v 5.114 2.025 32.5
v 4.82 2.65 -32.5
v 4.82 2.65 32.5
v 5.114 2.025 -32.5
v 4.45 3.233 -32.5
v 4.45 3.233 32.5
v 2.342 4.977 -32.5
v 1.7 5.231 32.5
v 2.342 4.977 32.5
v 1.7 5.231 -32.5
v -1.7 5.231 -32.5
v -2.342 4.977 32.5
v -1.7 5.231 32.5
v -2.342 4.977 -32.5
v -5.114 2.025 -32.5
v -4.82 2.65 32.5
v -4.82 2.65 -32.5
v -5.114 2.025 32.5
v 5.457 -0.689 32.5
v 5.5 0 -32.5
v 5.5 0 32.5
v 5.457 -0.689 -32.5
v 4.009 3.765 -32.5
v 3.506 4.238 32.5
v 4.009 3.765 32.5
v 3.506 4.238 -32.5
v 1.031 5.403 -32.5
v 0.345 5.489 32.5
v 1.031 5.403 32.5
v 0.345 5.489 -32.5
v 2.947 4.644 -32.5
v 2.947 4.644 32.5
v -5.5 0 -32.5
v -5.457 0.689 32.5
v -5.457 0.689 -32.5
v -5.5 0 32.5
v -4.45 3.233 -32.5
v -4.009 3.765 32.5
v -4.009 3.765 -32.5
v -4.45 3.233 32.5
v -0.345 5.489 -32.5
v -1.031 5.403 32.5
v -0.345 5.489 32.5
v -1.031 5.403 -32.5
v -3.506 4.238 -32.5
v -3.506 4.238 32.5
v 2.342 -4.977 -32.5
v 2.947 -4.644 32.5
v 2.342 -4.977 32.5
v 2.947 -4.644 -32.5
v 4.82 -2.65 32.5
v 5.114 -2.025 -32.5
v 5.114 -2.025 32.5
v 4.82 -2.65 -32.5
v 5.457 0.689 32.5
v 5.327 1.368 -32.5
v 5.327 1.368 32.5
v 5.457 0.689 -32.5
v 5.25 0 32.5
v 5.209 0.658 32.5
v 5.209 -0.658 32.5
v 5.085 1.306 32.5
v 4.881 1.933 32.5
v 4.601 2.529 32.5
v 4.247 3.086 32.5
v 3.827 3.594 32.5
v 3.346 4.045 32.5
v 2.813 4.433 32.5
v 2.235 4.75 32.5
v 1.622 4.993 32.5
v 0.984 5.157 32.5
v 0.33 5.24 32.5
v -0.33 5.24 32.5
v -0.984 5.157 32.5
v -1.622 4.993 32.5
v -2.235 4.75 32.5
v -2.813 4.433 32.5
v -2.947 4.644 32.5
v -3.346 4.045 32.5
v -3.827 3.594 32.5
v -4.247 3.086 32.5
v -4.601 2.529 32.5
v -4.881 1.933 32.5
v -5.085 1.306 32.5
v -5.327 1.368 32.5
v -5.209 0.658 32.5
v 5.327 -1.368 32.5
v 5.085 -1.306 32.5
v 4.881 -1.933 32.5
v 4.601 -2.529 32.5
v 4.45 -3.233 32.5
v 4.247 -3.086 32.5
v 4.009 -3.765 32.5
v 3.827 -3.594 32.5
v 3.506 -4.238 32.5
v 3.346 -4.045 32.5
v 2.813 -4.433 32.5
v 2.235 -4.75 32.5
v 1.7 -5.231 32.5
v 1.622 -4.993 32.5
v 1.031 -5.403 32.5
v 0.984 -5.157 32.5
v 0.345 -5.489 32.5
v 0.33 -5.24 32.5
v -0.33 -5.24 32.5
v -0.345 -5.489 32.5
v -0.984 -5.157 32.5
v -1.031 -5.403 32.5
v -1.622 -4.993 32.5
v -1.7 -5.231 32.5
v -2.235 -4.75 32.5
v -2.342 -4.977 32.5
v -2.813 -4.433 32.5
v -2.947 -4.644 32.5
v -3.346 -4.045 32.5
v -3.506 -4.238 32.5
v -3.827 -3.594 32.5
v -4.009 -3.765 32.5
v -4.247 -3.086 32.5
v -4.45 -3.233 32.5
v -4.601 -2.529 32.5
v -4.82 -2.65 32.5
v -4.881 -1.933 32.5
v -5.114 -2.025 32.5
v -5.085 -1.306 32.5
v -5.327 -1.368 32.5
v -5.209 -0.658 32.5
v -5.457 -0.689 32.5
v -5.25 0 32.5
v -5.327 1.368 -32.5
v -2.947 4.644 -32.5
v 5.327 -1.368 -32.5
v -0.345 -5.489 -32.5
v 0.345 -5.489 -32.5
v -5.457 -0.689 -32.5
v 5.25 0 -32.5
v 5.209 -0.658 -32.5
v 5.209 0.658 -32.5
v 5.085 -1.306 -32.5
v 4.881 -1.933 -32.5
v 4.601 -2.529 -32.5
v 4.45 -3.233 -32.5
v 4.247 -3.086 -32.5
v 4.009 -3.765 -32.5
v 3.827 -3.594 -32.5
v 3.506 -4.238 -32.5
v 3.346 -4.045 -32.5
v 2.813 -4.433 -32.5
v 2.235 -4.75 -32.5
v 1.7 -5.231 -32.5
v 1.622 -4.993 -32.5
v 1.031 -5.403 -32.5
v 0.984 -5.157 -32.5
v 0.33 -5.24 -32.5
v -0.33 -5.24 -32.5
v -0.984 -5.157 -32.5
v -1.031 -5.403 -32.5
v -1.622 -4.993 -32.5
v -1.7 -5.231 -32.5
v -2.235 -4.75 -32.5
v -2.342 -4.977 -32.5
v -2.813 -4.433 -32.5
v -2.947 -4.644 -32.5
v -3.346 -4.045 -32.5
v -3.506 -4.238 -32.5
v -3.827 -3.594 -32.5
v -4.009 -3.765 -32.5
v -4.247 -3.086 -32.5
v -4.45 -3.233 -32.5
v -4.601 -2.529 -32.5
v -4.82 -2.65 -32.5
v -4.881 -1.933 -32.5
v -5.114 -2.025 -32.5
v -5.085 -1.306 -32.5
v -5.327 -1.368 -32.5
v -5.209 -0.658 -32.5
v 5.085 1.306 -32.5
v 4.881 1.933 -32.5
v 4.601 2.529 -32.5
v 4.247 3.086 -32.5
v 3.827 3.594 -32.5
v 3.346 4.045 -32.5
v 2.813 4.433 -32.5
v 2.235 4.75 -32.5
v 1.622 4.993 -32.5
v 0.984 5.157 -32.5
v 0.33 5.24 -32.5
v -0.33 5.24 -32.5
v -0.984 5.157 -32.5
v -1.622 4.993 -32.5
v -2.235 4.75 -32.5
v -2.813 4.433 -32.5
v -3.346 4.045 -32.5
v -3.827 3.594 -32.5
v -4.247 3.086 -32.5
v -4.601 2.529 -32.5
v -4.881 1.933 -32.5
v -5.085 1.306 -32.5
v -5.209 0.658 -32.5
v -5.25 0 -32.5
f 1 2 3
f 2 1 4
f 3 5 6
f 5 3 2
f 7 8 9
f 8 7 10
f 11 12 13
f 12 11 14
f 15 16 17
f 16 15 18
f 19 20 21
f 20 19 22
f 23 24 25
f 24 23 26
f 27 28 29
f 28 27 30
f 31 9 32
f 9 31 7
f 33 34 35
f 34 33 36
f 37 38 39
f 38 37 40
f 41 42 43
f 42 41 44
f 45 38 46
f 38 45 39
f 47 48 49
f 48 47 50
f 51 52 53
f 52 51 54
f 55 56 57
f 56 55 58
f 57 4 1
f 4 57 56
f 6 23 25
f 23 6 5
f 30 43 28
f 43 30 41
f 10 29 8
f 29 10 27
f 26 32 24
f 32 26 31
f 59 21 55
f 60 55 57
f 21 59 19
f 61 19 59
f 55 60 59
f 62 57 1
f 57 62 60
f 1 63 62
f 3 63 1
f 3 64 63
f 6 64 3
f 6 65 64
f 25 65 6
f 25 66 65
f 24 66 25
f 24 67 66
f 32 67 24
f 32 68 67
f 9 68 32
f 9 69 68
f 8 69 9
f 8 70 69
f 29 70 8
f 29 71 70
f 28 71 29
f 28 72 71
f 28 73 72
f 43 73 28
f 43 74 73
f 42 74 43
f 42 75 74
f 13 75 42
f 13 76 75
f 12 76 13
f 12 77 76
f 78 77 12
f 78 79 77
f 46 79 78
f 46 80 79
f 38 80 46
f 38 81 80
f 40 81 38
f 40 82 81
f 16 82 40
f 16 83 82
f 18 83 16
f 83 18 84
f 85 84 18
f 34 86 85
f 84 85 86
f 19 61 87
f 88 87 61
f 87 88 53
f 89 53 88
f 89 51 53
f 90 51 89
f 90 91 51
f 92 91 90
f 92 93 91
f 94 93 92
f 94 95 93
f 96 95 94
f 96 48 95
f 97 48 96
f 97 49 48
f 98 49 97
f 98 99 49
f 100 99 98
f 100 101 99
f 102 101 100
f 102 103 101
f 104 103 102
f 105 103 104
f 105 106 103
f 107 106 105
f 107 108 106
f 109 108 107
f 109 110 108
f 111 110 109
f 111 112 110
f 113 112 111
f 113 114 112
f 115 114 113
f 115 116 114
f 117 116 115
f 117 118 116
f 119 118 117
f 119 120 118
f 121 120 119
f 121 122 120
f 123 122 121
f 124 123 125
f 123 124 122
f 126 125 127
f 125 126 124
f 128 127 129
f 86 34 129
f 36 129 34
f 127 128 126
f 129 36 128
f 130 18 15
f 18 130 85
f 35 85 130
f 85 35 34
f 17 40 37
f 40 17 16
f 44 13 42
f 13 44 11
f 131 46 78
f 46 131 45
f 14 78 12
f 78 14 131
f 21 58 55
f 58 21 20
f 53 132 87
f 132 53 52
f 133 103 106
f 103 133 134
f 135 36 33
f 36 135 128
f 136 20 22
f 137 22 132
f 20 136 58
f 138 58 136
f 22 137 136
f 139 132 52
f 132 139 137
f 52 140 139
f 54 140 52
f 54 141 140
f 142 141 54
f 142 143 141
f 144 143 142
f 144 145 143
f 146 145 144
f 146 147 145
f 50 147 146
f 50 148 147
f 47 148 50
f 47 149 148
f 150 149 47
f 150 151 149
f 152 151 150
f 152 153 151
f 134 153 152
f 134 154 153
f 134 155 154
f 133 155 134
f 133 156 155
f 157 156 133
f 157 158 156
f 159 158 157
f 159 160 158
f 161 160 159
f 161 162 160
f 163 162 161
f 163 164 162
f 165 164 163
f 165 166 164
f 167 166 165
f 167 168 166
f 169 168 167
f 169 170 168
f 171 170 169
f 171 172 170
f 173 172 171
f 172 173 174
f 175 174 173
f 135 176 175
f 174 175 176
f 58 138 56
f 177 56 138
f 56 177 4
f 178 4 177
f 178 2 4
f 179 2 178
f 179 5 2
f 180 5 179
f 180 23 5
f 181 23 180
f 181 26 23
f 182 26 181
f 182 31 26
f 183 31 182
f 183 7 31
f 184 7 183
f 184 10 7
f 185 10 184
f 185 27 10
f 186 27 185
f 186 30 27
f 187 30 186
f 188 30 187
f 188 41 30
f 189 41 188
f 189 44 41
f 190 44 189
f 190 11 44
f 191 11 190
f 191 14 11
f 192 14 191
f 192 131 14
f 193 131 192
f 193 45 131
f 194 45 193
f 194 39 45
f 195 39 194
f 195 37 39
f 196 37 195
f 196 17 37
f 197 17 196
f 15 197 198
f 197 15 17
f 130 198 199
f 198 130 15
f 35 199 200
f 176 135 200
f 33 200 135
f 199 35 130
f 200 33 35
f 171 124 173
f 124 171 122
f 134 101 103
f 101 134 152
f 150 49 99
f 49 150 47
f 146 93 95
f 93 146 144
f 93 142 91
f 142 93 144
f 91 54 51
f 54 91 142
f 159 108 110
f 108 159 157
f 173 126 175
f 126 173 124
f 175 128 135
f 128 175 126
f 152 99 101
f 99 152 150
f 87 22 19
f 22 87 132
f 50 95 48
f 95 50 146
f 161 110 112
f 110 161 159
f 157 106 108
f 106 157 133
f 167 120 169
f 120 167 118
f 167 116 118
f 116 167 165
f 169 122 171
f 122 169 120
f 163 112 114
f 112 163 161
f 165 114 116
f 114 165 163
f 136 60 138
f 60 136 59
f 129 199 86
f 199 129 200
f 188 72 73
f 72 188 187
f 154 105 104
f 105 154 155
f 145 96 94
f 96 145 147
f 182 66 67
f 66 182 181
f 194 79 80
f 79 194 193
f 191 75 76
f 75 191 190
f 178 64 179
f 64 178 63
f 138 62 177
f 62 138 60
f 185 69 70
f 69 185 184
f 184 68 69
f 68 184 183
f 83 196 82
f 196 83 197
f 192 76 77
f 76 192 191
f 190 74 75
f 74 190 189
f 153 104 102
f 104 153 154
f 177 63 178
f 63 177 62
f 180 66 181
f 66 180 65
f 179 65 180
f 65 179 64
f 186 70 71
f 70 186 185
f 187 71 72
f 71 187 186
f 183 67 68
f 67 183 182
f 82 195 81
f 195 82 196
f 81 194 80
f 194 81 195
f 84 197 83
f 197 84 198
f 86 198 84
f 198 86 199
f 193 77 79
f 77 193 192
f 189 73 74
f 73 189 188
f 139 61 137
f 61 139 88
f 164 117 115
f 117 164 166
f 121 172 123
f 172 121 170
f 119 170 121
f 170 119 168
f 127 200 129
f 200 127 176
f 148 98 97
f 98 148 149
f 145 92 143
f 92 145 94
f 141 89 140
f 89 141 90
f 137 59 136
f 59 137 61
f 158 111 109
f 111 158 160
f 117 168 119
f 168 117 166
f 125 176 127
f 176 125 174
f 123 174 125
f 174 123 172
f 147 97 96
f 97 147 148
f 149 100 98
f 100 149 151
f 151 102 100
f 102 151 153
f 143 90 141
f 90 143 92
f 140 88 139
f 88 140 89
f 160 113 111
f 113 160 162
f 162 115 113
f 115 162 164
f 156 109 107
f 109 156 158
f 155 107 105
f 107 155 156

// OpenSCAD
$fn = 50;


difference() {
	union() {
		translate(v = [0, 0, -32.5000000000]) {
			cylinder(h = 65, r = 5.5000000000);
		}
	}
	union() {
		translate(v = [0, 0, -100.0000000000]) {
			cylinder(h = 200, r = 5.2500000000);
		}
	}
}
